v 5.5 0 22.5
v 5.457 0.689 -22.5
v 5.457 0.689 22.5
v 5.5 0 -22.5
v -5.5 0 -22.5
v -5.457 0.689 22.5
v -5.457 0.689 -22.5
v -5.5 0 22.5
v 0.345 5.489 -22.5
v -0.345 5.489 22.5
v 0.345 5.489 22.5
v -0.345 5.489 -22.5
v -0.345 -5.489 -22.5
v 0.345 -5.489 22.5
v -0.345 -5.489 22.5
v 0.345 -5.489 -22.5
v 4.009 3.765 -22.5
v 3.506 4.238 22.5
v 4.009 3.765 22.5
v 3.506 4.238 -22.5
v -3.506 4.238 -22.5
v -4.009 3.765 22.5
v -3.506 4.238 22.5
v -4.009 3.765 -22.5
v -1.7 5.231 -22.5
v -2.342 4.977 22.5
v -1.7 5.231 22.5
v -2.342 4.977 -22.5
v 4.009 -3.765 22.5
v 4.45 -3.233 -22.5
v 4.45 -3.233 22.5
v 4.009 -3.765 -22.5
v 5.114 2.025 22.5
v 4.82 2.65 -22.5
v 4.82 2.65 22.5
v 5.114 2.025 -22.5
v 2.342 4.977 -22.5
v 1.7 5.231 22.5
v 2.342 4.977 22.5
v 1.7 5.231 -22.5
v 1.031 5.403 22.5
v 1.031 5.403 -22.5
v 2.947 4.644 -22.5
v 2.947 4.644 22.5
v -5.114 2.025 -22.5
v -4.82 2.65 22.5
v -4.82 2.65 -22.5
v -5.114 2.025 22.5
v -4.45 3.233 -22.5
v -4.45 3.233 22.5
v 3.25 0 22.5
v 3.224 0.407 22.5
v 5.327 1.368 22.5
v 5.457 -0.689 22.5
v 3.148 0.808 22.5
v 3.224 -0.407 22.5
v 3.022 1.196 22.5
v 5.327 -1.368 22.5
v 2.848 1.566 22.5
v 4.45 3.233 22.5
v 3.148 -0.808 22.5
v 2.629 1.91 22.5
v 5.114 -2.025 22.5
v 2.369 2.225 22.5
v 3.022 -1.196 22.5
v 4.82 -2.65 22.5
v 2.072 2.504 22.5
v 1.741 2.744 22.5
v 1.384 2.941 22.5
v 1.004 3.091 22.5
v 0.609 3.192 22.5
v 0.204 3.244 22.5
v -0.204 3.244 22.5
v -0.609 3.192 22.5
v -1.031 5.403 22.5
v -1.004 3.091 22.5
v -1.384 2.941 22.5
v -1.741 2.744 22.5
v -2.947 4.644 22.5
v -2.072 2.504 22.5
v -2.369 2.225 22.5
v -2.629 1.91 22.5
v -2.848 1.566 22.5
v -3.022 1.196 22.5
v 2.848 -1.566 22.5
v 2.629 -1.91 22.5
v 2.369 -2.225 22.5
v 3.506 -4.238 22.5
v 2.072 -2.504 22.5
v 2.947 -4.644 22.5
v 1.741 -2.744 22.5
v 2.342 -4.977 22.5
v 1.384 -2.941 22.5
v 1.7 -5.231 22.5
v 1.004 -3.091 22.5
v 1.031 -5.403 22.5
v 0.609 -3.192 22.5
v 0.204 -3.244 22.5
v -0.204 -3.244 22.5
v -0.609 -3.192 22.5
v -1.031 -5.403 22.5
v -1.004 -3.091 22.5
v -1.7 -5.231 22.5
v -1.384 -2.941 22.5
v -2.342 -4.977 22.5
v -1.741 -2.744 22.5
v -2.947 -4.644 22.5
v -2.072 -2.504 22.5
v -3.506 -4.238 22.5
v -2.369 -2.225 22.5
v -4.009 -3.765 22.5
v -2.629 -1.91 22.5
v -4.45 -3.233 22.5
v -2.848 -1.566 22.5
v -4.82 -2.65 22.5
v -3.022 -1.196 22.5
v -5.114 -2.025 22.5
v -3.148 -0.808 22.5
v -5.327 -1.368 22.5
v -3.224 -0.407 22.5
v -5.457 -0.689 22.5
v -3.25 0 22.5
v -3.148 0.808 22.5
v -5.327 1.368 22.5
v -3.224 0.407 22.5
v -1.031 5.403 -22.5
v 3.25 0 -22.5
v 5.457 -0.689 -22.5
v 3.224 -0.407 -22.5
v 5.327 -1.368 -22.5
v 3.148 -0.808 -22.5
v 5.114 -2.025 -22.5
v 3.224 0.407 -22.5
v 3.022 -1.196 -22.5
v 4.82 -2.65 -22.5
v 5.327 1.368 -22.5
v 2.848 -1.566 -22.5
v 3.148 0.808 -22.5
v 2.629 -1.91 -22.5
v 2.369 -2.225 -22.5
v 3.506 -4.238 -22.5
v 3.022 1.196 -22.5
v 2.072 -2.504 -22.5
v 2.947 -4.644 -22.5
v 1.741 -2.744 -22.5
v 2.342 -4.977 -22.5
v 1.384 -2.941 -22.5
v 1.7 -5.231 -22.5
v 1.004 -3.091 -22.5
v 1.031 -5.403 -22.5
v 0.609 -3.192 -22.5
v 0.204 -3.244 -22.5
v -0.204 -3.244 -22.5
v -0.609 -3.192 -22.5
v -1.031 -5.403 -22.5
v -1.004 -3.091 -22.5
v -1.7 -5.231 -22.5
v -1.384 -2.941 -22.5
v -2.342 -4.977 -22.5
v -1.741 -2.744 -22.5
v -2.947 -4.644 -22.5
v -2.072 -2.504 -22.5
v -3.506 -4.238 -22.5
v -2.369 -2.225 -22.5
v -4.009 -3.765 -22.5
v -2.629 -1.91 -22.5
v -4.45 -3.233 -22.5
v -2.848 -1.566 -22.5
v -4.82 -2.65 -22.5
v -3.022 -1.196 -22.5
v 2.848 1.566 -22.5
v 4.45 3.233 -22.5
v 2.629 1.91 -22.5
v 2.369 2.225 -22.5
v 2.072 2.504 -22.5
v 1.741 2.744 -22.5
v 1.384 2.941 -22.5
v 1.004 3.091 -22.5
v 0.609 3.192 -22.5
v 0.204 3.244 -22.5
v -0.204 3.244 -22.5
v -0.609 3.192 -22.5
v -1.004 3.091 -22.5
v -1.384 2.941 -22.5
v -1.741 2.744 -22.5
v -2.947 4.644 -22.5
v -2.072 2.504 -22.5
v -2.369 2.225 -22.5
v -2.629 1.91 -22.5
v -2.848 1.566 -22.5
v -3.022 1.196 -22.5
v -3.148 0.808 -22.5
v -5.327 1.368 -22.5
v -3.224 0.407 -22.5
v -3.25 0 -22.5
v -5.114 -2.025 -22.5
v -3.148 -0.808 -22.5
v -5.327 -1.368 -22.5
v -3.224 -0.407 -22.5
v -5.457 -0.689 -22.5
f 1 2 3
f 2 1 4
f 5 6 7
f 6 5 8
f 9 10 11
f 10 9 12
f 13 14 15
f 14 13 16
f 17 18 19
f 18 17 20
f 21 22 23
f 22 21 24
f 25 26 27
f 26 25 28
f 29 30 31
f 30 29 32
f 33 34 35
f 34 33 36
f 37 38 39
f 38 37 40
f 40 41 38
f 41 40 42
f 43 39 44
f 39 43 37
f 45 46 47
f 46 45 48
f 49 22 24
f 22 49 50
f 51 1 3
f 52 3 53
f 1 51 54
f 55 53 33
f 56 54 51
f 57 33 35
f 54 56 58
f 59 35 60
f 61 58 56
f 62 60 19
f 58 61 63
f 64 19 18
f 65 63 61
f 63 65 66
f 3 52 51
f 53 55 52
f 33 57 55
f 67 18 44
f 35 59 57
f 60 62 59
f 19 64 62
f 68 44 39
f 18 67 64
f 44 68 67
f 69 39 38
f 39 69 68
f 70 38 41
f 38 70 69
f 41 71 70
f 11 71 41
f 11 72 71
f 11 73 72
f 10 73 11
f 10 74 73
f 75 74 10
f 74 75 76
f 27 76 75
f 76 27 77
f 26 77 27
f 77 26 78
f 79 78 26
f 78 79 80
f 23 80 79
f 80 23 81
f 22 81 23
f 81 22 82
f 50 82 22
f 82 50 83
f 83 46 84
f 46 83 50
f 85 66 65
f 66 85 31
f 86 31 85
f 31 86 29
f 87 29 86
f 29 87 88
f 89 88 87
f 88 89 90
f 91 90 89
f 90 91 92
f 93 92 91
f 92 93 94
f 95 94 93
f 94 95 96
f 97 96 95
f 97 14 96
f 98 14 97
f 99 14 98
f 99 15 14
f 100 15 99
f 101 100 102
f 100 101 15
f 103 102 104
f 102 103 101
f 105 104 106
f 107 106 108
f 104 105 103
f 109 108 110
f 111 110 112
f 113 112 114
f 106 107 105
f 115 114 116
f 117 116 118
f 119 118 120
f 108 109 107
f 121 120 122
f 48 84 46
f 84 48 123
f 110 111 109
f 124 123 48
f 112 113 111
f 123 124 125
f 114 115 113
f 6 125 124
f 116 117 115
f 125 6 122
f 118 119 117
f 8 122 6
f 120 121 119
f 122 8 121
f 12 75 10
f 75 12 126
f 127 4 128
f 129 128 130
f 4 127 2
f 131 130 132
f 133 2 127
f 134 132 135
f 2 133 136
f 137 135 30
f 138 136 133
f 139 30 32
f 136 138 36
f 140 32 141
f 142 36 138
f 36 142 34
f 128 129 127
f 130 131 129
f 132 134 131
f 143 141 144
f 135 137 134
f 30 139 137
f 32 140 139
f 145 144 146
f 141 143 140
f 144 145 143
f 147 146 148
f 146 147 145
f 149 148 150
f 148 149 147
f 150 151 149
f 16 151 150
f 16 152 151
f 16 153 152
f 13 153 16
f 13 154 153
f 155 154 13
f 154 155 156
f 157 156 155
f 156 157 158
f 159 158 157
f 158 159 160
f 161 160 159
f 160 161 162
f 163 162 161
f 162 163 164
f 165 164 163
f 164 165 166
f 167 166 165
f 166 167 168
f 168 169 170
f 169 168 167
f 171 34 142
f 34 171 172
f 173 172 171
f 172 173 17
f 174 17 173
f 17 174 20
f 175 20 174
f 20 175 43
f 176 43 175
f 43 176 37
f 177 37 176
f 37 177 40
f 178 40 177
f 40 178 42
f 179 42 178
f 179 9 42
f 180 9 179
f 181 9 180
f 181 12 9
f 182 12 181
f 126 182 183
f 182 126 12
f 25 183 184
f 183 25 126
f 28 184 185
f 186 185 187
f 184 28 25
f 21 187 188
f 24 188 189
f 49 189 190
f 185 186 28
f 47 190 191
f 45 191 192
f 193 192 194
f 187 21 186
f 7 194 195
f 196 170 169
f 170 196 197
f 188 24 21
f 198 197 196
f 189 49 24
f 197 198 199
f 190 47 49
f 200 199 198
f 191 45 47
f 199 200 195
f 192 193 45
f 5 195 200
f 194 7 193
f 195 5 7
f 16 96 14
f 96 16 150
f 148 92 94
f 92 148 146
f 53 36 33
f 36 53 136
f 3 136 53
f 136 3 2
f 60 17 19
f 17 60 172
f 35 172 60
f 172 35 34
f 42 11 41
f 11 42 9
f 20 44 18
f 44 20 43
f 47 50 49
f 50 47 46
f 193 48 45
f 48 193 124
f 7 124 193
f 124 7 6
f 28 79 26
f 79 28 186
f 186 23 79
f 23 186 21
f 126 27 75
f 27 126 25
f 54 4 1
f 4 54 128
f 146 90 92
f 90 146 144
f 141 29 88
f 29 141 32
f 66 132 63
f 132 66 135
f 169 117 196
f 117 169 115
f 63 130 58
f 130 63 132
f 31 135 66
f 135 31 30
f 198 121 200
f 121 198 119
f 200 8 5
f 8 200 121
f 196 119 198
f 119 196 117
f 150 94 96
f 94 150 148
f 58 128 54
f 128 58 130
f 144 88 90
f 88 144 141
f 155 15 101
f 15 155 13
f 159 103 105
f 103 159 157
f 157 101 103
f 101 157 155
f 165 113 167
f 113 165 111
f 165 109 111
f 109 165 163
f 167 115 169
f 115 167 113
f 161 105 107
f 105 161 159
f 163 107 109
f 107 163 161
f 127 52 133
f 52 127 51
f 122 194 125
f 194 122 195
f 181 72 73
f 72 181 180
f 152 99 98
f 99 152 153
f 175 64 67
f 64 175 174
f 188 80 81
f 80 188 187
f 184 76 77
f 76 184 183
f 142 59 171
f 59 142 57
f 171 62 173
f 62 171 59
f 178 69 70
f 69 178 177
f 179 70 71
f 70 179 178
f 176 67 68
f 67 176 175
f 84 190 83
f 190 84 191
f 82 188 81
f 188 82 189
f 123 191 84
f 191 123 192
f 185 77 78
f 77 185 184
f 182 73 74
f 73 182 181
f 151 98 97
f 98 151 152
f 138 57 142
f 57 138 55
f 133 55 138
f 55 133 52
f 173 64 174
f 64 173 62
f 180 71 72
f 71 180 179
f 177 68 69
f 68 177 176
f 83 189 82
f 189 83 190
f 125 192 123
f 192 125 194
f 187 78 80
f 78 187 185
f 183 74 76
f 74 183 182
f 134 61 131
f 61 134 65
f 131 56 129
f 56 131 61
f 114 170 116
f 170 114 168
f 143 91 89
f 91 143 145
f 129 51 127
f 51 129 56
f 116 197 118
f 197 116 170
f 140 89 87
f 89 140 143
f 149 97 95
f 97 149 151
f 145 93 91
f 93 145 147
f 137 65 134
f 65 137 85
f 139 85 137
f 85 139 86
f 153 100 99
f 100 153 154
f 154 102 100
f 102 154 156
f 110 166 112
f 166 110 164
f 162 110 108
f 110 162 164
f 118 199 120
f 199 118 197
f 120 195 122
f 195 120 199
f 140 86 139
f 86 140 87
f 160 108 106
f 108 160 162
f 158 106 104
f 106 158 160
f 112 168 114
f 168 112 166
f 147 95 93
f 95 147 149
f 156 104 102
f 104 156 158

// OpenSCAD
$fn = 50;


difference() {
	union() {
		translate(v = [0, 0, -22.5000000000]) {
			cylinder(h = 45, r = 5.5000000000);
		}
	}
	union() {
		translate(v = [0, 0, -100.0000000000]) {
			cylinder(h = 200, r = 3.2500000000);
		}
	}
}
